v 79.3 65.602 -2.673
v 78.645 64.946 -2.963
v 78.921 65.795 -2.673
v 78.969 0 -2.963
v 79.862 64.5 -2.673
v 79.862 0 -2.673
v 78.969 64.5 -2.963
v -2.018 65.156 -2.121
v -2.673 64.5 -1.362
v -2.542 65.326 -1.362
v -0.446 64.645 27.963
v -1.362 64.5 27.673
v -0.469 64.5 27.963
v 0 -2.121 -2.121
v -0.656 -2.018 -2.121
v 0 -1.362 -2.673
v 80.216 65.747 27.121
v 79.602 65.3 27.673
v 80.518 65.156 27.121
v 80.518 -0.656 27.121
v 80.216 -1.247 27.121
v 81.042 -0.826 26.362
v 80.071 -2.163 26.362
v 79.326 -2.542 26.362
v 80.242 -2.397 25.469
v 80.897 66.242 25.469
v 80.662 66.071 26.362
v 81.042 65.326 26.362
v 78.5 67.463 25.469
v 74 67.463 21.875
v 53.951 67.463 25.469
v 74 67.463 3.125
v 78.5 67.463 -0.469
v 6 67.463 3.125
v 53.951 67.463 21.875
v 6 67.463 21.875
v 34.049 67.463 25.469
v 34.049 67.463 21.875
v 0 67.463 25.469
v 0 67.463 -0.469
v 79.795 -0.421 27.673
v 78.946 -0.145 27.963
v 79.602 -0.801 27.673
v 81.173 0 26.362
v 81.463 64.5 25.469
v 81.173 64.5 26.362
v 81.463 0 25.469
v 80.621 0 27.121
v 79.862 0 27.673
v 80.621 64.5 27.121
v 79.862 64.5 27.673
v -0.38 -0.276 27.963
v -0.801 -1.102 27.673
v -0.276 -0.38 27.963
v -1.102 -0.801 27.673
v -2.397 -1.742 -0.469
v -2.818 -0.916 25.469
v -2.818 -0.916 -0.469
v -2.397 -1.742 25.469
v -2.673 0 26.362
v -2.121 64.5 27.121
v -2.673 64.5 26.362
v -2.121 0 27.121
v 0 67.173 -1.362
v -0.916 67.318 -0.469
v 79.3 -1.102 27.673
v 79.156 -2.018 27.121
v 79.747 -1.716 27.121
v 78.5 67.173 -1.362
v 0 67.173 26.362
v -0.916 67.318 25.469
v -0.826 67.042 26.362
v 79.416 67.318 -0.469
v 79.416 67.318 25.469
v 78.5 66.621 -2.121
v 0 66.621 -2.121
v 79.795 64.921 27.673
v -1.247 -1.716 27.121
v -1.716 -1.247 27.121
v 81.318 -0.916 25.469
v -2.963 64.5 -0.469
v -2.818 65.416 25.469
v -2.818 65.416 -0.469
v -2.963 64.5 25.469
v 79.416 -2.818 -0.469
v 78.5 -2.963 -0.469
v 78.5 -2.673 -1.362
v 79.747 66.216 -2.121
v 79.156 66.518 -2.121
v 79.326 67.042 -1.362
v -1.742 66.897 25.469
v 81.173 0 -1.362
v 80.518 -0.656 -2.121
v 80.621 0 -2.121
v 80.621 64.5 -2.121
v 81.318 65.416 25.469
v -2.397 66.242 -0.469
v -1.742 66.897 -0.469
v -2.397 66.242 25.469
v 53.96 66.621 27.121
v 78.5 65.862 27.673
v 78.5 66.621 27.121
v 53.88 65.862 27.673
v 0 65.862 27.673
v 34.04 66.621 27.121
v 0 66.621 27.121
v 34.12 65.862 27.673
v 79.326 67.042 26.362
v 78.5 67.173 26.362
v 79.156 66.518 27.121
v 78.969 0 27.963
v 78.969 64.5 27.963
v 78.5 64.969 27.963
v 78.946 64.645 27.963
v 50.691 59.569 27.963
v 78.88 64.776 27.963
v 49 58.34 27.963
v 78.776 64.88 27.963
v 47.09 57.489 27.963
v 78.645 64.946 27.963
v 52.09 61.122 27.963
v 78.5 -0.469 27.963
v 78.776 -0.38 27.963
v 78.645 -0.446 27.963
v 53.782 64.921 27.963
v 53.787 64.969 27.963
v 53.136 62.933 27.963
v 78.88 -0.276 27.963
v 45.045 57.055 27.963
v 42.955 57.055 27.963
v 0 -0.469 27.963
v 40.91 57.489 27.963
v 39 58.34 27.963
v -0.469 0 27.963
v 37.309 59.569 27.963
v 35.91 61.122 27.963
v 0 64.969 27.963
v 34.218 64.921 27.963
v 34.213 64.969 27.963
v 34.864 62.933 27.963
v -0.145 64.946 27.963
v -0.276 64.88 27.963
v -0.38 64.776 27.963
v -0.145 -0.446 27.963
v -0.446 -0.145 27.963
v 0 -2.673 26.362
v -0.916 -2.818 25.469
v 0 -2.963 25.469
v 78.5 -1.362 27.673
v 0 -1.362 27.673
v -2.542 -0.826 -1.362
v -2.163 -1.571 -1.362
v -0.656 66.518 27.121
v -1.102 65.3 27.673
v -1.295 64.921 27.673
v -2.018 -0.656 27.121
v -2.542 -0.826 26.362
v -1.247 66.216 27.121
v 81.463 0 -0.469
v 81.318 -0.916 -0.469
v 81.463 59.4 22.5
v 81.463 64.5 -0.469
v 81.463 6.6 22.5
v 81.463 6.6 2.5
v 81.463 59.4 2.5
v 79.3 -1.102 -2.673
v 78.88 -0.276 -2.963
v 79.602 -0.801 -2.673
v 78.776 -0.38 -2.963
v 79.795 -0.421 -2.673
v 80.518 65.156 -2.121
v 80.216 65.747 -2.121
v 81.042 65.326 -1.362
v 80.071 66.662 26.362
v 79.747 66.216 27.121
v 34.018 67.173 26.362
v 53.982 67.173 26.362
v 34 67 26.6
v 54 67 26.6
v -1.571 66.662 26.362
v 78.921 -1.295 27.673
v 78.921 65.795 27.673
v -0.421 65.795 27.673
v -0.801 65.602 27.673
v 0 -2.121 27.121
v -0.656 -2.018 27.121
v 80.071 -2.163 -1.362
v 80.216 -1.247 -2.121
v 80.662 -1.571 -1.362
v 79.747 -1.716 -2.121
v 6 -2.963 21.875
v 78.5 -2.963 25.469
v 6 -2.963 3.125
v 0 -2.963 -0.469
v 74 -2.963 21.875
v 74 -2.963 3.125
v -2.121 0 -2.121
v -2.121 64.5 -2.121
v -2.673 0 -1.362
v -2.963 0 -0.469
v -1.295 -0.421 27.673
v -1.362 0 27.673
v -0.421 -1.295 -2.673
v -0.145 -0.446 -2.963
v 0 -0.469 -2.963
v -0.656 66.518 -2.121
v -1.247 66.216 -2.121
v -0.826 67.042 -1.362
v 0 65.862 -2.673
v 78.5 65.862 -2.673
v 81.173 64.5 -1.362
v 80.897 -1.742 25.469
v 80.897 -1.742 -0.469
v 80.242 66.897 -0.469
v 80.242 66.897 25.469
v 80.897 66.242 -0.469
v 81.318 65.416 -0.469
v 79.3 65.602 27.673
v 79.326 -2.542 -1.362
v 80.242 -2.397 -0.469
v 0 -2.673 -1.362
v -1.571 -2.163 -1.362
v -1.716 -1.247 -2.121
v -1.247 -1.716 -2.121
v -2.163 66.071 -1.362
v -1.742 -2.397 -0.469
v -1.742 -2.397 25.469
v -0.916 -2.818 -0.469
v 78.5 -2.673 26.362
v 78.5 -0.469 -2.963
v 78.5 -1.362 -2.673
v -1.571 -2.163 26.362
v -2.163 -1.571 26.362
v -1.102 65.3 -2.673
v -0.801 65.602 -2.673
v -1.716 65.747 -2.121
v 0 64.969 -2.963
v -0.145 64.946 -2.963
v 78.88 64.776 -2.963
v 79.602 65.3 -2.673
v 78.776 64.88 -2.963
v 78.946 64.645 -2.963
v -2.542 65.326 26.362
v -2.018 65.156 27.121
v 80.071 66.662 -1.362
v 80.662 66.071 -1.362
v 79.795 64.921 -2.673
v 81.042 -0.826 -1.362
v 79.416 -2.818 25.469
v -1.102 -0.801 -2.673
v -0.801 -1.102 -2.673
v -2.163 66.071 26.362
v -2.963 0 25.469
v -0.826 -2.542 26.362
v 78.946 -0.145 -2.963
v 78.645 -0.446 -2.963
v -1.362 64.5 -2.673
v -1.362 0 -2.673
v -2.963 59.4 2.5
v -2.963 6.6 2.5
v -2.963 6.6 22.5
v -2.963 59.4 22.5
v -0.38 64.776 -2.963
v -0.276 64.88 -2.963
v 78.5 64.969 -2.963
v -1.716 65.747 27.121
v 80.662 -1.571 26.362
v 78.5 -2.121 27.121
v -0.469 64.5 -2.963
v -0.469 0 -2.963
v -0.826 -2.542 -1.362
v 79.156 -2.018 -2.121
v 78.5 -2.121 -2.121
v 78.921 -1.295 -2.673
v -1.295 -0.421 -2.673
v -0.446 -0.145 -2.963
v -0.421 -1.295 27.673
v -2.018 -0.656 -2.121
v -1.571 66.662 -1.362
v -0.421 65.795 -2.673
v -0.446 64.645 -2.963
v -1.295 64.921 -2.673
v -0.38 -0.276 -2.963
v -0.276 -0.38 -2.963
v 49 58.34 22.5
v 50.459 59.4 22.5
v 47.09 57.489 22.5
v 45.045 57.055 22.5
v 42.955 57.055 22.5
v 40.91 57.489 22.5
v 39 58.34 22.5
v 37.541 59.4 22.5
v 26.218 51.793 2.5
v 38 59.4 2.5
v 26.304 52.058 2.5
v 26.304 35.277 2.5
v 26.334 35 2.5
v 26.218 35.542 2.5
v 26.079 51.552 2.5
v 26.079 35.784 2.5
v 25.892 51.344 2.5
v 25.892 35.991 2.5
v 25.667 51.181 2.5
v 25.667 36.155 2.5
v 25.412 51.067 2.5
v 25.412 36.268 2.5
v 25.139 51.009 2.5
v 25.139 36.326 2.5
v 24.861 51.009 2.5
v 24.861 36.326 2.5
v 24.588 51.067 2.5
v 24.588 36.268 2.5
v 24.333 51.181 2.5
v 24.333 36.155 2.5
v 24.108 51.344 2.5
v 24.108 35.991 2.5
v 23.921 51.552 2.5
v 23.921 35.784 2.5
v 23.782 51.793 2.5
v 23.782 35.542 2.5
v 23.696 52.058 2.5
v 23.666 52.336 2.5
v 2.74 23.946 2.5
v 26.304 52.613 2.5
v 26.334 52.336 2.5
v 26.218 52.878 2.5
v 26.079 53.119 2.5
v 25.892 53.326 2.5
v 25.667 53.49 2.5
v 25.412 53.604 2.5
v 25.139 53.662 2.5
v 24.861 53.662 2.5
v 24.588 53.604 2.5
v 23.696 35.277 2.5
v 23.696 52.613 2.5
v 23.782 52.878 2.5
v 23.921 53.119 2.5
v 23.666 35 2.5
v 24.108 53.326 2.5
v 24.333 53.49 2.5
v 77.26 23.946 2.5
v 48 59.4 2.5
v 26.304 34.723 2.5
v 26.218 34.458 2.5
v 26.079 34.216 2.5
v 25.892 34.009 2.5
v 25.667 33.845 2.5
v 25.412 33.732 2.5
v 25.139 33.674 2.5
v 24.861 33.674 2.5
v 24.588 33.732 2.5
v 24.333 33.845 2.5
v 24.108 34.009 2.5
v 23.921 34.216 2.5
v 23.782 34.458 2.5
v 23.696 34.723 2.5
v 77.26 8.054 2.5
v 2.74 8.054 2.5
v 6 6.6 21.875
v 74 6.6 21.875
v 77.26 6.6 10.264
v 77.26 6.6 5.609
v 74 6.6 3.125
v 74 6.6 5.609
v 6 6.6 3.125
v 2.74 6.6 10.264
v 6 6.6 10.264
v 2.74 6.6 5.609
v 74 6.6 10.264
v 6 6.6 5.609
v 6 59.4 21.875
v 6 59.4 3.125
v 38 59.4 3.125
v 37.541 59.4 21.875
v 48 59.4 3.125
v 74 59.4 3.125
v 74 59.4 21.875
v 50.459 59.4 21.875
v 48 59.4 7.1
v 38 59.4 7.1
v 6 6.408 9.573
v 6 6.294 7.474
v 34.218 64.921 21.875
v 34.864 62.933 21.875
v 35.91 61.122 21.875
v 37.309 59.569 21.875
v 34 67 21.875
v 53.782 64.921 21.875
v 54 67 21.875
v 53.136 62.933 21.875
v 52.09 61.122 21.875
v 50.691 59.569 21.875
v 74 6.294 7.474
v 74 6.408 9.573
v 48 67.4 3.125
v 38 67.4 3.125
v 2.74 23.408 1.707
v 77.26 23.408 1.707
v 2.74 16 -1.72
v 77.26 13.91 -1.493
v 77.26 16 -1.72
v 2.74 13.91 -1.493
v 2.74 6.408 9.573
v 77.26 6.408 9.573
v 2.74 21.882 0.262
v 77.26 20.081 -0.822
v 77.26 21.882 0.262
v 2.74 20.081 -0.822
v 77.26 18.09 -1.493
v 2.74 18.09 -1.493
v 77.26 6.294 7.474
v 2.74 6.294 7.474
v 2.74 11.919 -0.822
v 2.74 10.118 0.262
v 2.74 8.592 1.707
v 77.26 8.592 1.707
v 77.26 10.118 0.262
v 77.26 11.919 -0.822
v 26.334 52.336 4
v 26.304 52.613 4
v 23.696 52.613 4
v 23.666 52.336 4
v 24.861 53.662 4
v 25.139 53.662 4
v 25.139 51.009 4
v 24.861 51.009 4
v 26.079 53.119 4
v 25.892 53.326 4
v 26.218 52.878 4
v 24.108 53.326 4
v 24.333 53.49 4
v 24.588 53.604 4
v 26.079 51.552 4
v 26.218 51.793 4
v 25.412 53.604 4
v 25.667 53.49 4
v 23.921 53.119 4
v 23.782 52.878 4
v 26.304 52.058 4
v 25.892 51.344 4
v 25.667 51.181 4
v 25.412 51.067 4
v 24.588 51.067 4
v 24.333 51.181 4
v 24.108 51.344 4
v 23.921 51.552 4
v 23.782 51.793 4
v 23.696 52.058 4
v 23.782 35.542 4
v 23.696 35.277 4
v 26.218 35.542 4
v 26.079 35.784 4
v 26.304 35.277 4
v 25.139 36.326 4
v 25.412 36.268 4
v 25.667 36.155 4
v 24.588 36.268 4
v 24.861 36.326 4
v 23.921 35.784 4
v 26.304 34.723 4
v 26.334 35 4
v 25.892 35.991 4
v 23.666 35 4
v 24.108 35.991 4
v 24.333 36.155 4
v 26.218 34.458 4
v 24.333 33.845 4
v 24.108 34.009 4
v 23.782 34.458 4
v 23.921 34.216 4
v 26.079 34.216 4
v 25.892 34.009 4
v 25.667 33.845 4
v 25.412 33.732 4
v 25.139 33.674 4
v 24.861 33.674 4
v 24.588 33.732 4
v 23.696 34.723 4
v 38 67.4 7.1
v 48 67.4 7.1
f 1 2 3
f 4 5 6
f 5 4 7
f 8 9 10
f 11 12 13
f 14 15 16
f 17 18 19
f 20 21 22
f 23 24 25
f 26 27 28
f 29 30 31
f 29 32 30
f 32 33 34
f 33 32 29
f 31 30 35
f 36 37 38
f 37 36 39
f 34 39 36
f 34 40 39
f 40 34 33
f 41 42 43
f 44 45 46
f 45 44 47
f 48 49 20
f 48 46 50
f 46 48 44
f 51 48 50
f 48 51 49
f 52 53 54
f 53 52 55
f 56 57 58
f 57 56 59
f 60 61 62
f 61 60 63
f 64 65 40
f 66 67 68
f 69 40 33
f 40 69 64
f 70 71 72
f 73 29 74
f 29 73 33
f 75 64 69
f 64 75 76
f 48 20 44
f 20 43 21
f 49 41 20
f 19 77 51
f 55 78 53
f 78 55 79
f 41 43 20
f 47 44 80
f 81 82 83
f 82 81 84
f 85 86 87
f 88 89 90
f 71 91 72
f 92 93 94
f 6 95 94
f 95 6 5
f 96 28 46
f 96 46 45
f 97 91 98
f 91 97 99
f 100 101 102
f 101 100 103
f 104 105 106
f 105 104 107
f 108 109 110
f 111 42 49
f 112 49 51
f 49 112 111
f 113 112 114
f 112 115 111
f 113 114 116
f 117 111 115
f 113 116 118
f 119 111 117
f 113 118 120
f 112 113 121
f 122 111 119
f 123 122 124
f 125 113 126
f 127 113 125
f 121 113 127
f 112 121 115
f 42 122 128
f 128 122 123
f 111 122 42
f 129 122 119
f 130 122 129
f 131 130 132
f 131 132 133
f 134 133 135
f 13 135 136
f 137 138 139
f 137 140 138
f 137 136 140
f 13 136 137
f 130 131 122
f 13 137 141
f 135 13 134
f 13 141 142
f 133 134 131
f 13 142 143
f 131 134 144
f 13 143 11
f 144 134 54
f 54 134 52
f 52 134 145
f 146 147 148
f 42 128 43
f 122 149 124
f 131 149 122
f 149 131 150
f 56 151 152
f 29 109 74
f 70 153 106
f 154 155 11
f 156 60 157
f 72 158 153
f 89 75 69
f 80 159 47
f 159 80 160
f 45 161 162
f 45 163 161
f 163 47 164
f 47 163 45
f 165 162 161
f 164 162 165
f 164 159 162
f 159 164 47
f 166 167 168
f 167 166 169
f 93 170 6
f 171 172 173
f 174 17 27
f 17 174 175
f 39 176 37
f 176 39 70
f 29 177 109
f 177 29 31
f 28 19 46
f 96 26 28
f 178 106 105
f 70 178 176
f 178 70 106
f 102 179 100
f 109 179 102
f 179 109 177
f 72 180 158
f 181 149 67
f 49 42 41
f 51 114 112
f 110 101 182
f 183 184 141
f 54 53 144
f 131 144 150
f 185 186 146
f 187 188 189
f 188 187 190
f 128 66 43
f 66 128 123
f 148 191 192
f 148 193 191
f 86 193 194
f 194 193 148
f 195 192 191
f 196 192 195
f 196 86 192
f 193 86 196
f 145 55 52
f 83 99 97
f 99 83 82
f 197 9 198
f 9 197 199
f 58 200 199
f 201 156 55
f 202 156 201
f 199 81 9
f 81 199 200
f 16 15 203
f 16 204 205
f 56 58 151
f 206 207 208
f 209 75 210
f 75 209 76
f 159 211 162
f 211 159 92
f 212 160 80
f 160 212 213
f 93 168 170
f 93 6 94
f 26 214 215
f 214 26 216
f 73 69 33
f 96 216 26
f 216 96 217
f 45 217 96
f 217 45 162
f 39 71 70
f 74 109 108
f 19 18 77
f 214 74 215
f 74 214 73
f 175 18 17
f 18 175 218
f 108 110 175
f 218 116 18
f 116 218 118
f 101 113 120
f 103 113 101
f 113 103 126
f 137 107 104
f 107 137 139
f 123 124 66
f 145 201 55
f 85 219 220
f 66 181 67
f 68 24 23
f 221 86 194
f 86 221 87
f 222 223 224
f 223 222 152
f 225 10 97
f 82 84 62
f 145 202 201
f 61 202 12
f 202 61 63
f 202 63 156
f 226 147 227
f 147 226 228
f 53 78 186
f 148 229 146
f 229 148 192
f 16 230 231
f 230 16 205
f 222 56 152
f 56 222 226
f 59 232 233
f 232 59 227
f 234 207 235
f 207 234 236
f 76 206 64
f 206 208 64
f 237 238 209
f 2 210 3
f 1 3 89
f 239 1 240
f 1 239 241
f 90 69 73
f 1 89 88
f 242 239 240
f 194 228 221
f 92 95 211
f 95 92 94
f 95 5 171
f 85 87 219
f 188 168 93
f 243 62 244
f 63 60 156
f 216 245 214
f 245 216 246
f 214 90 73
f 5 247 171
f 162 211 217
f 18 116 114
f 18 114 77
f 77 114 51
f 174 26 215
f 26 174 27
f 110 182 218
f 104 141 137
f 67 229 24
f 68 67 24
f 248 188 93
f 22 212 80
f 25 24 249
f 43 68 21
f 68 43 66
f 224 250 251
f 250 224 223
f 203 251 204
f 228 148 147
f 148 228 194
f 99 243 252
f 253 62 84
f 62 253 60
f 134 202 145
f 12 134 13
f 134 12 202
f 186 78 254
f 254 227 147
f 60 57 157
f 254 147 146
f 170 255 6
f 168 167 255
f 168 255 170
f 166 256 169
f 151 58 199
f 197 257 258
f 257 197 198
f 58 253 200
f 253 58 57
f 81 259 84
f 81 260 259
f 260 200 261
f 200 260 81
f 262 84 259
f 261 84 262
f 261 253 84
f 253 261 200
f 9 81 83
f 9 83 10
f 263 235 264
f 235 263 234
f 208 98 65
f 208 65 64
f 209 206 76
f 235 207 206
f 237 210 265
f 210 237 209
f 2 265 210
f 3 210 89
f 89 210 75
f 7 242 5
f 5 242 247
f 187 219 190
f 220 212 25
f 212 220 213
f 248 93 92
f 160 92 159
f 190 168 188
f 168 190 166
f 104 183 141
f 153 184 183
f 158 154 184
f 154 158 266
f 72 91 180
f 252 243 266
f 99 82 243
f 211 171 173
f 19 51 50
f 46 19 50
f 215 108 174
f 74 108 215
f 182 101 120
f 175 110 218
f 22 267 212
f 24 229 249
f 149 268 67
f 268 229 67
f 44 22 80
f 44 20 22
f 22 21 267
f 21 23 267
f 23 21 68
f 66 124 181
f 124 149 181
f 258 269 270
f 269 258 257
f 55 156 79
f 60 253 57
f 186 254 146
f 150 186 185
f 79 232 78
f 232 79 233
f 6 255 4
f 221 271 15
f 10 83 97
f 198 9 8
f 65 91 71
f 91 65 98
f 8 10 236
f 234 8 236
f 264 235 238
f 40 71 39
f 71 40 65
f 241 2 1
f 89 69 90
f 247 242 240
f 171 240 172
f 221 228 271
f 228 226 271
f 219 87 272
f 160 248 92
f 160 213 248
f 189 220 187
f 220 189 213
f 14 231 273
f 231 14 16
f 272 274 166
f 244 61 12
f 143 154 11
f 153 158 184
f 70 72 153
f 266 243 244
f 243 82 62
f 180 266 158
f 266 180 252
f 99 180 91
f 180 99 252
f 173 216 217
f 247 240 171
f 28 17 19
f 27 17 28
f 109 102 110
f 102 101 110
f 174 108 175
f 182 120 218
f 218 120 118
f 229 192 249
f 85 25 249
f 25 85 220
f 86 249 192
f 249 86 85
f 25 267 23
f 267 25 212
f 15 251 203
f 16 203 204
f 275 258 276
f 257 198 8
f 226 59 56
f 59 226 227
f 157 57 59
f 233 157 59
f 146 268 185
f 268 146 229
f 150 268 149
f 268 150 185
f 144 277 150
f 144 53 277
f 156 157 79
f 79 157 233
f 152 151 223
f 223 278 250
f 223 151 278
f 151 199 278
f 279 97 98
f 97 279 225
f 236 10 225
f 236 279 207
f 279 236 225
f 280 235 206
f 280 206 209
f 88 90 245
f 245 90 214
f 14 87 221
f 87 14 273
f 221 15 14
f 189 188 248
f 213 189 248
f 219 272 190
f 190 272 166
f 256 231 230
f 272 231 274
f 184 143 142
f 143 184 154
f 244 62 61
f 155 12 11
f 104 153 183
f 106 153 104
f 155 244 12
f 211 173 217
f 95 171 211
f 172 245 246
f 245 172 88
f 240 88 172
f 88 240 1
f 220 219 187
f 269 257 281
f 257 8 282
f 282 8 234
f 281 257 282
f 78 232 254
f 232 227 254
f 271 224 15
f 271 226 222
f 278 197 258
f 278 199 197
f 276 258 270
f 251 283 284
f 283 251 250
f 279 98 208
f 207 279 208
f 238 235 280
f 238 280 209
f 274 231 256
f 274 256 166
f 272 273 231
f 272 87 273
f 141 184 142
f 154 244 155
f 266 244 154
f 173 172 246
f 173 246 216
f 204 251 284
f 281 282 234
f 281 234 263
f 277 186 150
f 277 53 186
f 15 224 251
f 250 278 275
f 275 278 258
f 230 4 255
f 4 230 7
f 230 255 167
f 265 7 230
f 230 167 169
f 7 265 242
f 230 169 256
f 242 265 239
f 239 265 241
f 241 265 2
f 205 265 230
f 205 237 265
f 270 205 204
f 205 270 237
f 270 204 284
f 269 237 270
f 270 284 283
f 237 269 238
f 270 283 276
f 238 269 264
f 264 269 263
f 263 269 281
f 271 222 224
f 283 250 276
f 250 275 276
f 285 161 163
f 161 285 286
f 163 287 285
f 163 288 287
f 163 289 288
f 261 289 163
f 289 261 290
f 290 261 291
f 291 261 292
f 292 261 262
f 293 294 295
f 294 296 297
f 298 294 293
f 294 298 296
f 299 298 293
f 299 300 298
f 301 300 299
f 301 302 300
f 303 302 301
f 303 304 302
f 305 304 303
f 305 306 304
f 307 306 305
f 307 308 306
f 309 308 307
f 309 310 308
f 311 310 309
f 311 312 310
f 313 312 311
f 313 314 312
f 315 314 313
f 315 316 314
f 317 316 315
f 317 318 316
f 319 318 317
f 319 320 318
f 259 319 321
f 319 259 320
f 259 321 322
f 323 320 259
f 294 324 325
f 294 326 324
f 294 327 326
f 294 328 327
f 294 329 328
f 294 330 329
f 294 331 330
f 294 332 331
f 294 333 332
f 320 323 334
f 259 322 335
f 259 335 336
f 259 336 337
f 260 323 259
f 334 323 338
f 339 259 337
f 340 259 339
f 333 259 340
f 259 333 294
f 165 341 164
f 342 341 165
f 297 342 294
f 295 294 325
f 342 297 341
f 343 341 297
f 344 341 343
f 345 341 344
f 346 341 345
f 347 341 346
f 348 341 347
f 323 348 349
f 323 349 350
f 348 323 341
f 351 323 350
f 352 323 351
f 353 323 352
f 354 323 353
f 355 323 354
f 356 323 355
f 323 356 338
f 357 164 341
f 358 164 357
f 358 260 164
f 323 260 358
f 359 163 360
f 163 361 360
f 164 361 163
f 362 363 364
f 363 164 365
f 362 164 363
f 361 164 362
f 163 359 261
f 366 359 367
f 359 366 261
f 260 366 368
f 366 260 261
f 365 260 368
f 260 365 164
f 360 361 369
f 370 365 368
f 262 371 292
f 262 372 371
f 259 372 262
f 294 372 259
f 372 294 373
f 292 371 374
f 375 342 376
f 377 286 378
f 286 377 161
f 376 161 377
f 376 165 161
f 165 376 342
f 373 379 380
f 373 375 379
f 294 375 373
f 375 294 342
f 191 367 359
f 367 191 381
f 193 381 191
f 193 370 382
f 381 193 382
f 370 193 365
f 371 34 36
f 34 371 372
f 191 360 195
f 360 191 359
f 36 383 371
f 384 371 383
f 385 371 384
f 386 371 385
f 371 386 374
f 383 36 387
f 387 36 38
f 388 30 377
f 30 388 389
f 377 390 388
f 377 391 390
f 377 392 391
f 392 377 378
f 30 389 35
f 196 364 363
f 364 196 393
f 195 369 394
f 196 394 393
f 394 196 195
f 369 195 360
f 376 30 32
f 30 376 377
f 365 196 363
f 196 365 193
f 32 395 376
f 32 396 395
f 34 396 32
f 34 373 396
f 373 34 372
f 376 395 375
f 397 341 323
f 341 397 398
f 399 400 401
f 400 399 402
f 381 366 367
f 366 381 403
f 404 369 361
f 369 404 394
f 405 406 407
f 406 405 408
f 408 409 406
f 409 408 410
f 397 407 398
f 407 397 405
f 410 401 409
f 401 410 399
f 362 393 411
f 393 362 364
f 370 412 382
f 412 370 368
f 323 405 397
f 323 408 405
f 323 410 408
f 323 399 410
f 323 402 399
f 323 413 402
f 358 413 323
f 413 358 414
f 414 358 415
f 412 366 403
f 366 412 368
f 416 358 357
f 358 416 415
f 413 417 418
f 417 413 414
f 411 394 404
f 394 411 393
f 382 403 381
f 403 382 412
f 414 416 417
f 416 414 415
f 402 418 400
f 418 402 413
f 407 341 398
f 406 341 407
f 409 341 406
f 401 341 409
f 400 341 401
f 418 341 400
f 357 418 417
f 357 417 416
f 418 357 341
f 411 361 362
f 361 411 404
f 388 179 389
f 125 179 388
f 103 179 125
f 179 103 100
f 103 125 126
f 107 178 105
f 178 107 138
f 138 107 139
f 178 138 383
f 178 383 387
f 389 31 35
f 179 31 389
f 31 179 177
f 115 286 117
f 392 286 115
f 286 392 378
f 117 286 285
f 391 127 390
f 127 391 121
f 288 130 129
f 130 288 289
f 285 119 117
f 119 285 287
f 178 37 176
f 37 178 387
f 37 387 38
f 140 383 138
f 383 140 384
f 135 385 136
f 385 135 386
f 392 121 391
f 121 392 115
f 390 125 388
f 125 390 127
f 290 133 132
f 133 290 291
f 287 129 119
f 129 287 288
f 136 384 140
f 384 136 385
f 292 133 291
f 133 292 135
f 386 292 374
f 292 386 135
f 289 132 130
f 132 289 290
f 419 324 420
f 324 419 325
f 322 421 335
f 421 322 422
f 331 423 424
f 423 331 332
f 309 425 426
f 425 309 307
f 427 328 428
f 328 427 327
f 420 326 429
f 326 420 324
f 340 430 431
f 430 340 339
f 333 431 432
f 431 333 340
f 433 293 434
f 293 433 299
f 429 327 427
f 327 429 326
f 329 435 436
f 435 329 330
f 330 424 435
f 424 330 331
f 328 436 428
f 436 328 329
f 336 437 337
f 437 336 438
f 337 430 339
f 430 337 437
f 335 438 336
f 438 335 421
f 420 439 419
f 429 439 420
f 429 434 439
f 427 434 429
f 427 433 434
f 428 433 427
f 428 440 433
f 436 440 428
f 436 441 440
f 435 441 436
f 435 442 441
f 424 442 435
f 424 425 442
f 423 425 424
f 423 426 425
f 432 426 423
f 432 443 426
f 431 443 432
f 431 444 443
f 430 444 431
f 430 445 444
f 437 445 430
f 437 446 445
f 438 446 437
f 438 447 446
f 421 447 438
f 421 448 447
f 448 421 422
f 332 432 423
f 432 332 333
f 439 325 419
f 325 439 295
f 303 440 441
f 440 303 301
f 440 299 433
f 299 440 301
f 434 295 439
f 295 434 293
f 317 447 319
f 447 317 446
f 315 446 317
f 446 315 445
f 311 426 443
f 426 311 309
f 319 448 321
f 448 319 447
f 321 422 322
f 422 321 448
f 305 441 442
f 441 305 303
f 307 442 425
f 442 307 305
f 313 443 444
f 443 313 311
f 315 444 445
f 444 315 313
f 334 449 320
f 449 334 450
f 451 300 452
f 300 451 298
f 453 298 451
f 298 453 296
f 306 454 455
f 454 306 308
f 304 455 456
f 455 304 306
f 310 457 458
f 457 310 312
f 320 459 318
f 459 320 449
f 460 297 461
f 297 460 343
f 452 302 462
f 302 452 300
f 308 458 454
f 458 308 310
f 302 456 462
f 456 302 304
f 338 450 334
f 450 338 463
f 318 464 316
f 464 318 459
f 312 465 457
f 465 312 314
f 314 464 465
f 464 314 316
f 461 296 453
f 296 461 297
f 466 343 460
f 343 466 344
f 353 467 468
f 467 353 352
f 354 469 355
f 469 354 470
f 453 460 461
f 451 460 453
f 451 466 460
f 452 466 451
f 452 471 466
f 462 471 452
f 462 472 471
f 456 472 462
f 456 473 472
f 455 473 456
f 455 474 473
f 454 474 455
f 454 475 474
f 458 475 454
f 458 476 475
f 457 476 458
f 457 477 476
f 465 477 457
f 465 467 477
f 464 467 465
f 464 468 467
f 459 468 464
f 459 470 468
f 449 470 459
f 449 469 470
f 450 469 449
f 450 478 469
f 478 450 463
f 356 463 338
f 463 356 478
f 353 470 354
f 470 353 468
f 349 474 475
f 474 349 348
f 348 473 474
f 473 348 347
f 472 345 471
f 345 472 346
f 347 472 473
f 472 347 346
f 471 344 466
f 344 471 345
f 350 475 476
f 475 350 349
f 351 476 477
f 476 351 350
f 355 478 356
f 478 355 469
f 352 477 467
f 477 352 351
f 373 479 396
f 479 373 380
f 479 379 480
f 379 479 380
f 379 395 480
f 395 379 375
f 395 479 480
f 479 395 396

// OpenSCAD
// file: ../../../../../../basics/conversions.scad
function milliToInchConversionFactor() = 0.0393701;

function inchesToMillimeters(inches) = inches / milliToInchConversionFactor();
// file: ../../../../../../basics/rounded-edges/rounded-cube/rounded-cube.scad
/**
 *
 *  some parts of this software were inspired by
 *
 * 	     http://www.thingiverse.com/thing:9347
 *
 */

/**
 * makes a rounded cube
 */
module roundedCube(cornerRadius=4,
				   cubeCentered=false,
				   sides=30,
				   sidesOnly=false,
				   size=[20,20,2])
{
    $fn=sides;

    x = size[0] - cornerRadius/2;
    y = size[1] - cornerRadius/2;
    z = size[2];

    minkowski(size, cornerRadius)
    {
        cube(size=[x,y,z], center=cubeCentered);

        if(sidesOnly)
        {
            cylinder(r=cornerRadius);
        }
        else
        {
            sphere(r=cornerRadius);
        }
    };
}
// file: ../../../../../batteries/li-po/adafruit-1781/adafruit-lithium-ion-cylindrical.scad
/**
  * This is a model of the lithium polymer battery from Adafruit.
  *
  *       https://www.adafruit.com/product/1781
  */
module adafruitLithiumIonCylindrical()
{
    height = adafruitLithiumIonCylindrical_height();
    cylinder(h = height, r = 9);
}

/** Support modules and function follow **/

function adafruitLithiumIonCylindrical_height() = 69;
// file: ../../../mounting-holes/powerboost-500-charger-mounting-holes.scad
use <../../../../basics/conversions.scad>

module adafruitPowerboost500Charger_mountingHoles()
{
    rInches = 0.1 / 2.0;
    radius = inchesToMillimeters(rInches);
    height = 4;
    sides = 30;

    // these dimensions are from the adafruit learn site
    yInches = 0.65;
//    yInches = (0.85 - 0.65) / 2.0;
    yHoleDelta = inchesToMillimeters(yInches);

    // this is the 'top left standoff; it is on the power/USB end of the Trinket Mini
    translate([0, yHoleDelta, 0])
    cylinder(r=radius, h = height, $fn=sides);

    // this is the 'bottom left' standoff; it is on the reset button end of the Trinket Mini
    cylinder(r=radius, h = height, $fn=sides);
}
// file: ../../../../../../basics/rounded-edges/rounded-cube-enclosure/rounded-cube-enclosure.scad
use <../rounded-cube/rounded-cube.scad>

module roundedCubeEnclosure(boardLengthX,
					 		boardLengthY,
					 		boardLengthZ,
							cornerRadius,
							xAxisCutout_yPercentage,
							xAxisCutout_zPercentage,
							yAxisCutout_xPercentage,
							yAxisCutout_zPercentage)
{
	size = [boardLengthX, boardLengthY, boardLengthZ];

	difference()
	{
		roundedCube(cornerRadius = cornerRadius,
					size=size,
		            sides=5,
		            sides=20);

		// x axis cutout
		xAxisCutout_xLength = boardLengthX * 1.2;
		xAxisCutout_yLength = boardLengthY * xAxisCutout_yPercentage;
		xAxisCutout_zLength = boardLengthZ * xAxisCutout_zPercentage;
		xAxisCutout_xTranslate = -0.09 * boardLengthX;
		xAxisCutout_yTranslate = boardLengthY / 2.0 - xAxisCutout_yLength / 2.0;
		xAxisCutout_zTranslate = boardLengthZ / 2.0 - xAxisCutout_zLength / 2.0;
		color("blue")
		translate([xAxisCutout_xTranslate,
				   xAxisCutout_yTranslate,
				   xAxisCutout_zTranslate])
		cube([xAxisCutout_xLength,
			  xAxisCutout_yLength,
			  xAxisCutout_zLength]);

	  	// y axis cutout
		yAxisCutout_xLength = boardLengthX * yAxisCutout_xPercentage;
		yAxisCutout_yLength = boardLengthY * 1.2;
		yAxisCutout_zLength = boardLengthZ * yAxisCutout_zPercentage;
		yAxisCutout_xTranslate = boardLengthX / 2.0 - yAxisCutout_xLength / 2.0;
		yAxisCutout_yTranslate = boardLengthY / 2.0 - yAxisCutout_yLength / 2.0;
		yAxisCutout_zTranslate = boardLengthZ / 2.0 - yAxisCutout_zLength / 2.0;
		color("green")
		translate([yAxisCutout_xTranslate,
				   yAxisCutout_yTranslate,
				   yAxisCutout_zTranslate])
		cube([yAxisCutout_xLength,
			  yAxisCutout_yLength,
			  yAxisCutout_zLength]);
	}
}
// file: ../../adafruit-powerboost-500-charger-enclosure.scad
use <../../../../basics/rounded-edges/rounded-cube-enclosure/rounded-cube-enclosure.scad>

use <../../../../electronics/battery-chargers/adafruit-powerboost-500-charger/mounting-holes/powerboost-500-charger-mounting-holes.scad>

use <../../../batteries/li-po/adafruit-1781/adafruit-lithium-ion-cylindrical.scad>

module powerboost500ChargerEnclosure()
{
    union()
    {
        powerboost500ChargerEnclosure_chargerStandoffs();

        powerboost500ChargerEnclosure_buttonMount();

        powerboost500ChargerEnclosure_baseWithCutouts();
    }
}

/** Support modules and functions follow **/

module powerboost500ChargerEnclosure_baseWithCutouts()
{
    difference()
    {
        boardLengthZ = 25;
        //        buttonSide = 12;
        cornerRadius = 3;
        boardLengthX = 80;
        boardLengthY = 66;
        roundedCubeEnclosure(boardLengthX = boardLengthX,
                                        boardLengthY = boardLengthY,
                                        boardLengthZ = boardLengthZ,
                                        cornerRadius = cornerRadius,
                                        xAxisCutout_yPercentage = 0.8,
                                        xAxisCutout_zPercentage = 0.8,
                                        yAxisCutout_xPercentage = 0.85,
                                        yAxisCutout_zPercentage = 0.75);

        xyzScale = 1.08; // scale the size up by 2mm
//        xyzScale = 1.04; // scale the size up by 1mm
        cutoutLengthX = adafruitLithiumIonCylindrical_height() * xyzScale;
        xTranslate = (boardLengthX - cutoutLengthX ) / 2.0;
        translate([xTranslate, 16, 8])
        scale([xyzScale, xyzScale, xyzScale])
        rotate([0,90,0])
        adafruitLithiumIonCylindrical();

        // This is the top panel cutout to expose the on/off button.
        translate([44, 67, 20])
        cylinder(h=20, r=10);
    }
}

module powerboost500ChargerEnclosure_buttonMount()
{
    xTranslate = 38;
    yTransate = 59.4;
    zTranslate = 0.2;

    translate([xTranslate, yTransate, zTranslate])
    cube([10, 8, 6.9]);
}

module powerboost500ChargerEnclosure_chargerStandoffs()
{
    xTranslate = 25;
    yTranslate = 35;
    zTranslate = 0;

    translate([xTranslate, yTranslate, zTranslate])
    scale([1.05, 1.05, 1])
    adafruitPowerboost500Charger_mountingHoles();
}
// main file
use <../../adafruit-powerboost-500-charger-enclosure.scad>

powerboost500ChargerEnclosure();
